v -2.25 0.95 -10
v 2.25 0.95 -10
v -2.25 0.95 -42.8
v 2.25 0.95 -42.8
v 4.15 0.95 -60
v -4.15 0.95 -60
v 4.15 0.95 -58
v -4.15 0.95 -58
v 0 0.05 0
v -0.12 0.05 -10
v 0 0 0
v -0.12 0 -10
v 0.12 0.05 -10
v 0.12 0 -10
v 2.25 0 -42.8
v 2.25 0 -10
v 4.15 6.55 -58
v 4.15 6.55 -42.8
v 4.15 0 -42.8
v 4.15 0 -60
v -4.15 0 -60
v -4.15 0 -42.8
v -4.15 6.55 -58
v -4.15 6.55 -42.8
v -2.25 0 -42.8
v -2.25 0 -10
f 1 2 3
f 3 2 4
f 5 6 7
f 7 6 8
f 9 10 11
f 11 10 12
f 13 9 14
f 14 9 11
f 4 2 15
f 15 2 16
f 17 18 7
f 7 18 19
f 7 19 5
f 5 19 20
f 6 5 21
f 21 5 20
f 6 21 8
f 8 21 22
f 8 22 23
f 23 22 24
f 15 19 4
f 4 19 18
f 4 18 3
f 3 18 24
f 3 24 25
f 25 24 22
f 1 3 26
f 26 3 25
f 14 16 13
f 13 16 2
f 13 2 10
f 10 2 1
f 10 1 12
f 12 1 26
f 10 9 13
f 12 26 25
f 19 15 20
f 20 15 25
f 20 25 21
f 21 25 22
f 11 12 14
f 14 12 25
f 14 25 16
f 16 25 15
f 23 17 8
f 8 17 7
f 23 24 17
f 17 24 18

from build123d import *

# Parameters (mm, degrees)
EXTRUDE1_DEPTH = 0.05
EXTRUDE2_DEPTH = 0.9
SKETCH5_W      = 8.3
SKETCH5_H      = 15.2
EXTRUDE3_DEPTH = 5.6


with BuildPart() as part:
    # Sketch1 → Extrude1 (new body)
    with BuildSketch(Plane(origin=(0, 0, 0), x_dir=(1, 0, 0), z_dir=(0, 1, 0))):
        Polygon((0, 0), (0.12, 10), (2.25, 10), (2.25, 42.8), (4.15, 42.8), (4.15, 60), (-4.15, 60), (-4.15, 42.8), (-2.25, 42.8), (-2.25, 10), (-0.12, 10), align=None)
    extrude(amount=EXTRUDE1_DEPTH)

    # Sketch4 → Extrude2 (add)
    with BuildSketch(Plane(origin=(0, 0.05, 0), x_dir=(1, 0, 0), z_dir=(0, 1, 0))):
        Polygon((-4.15, 60), (4.15, 60), (4.15, 42.8), (2.25, 42.8), (2.25, 10), (-2.25, 10), (-2.25, 42.8), (-4.15, 42.8), align=None)
    extrude(amount=EXTRUDE2_DEPTH)

    # Sketch5 → Extrude3 (add)
    with BuildSketch(Plane(origin=(0, 0.95, 0), x_dir=(1, 0, 0), z_dir=(0, 1, 0))):
        with Locations((0, 50.4)):
            Rectangle(SKETCH5_W, SKETCH5_H)
    extrude(amount=EXTRUDE3_DEPTH)


solid = part.part
